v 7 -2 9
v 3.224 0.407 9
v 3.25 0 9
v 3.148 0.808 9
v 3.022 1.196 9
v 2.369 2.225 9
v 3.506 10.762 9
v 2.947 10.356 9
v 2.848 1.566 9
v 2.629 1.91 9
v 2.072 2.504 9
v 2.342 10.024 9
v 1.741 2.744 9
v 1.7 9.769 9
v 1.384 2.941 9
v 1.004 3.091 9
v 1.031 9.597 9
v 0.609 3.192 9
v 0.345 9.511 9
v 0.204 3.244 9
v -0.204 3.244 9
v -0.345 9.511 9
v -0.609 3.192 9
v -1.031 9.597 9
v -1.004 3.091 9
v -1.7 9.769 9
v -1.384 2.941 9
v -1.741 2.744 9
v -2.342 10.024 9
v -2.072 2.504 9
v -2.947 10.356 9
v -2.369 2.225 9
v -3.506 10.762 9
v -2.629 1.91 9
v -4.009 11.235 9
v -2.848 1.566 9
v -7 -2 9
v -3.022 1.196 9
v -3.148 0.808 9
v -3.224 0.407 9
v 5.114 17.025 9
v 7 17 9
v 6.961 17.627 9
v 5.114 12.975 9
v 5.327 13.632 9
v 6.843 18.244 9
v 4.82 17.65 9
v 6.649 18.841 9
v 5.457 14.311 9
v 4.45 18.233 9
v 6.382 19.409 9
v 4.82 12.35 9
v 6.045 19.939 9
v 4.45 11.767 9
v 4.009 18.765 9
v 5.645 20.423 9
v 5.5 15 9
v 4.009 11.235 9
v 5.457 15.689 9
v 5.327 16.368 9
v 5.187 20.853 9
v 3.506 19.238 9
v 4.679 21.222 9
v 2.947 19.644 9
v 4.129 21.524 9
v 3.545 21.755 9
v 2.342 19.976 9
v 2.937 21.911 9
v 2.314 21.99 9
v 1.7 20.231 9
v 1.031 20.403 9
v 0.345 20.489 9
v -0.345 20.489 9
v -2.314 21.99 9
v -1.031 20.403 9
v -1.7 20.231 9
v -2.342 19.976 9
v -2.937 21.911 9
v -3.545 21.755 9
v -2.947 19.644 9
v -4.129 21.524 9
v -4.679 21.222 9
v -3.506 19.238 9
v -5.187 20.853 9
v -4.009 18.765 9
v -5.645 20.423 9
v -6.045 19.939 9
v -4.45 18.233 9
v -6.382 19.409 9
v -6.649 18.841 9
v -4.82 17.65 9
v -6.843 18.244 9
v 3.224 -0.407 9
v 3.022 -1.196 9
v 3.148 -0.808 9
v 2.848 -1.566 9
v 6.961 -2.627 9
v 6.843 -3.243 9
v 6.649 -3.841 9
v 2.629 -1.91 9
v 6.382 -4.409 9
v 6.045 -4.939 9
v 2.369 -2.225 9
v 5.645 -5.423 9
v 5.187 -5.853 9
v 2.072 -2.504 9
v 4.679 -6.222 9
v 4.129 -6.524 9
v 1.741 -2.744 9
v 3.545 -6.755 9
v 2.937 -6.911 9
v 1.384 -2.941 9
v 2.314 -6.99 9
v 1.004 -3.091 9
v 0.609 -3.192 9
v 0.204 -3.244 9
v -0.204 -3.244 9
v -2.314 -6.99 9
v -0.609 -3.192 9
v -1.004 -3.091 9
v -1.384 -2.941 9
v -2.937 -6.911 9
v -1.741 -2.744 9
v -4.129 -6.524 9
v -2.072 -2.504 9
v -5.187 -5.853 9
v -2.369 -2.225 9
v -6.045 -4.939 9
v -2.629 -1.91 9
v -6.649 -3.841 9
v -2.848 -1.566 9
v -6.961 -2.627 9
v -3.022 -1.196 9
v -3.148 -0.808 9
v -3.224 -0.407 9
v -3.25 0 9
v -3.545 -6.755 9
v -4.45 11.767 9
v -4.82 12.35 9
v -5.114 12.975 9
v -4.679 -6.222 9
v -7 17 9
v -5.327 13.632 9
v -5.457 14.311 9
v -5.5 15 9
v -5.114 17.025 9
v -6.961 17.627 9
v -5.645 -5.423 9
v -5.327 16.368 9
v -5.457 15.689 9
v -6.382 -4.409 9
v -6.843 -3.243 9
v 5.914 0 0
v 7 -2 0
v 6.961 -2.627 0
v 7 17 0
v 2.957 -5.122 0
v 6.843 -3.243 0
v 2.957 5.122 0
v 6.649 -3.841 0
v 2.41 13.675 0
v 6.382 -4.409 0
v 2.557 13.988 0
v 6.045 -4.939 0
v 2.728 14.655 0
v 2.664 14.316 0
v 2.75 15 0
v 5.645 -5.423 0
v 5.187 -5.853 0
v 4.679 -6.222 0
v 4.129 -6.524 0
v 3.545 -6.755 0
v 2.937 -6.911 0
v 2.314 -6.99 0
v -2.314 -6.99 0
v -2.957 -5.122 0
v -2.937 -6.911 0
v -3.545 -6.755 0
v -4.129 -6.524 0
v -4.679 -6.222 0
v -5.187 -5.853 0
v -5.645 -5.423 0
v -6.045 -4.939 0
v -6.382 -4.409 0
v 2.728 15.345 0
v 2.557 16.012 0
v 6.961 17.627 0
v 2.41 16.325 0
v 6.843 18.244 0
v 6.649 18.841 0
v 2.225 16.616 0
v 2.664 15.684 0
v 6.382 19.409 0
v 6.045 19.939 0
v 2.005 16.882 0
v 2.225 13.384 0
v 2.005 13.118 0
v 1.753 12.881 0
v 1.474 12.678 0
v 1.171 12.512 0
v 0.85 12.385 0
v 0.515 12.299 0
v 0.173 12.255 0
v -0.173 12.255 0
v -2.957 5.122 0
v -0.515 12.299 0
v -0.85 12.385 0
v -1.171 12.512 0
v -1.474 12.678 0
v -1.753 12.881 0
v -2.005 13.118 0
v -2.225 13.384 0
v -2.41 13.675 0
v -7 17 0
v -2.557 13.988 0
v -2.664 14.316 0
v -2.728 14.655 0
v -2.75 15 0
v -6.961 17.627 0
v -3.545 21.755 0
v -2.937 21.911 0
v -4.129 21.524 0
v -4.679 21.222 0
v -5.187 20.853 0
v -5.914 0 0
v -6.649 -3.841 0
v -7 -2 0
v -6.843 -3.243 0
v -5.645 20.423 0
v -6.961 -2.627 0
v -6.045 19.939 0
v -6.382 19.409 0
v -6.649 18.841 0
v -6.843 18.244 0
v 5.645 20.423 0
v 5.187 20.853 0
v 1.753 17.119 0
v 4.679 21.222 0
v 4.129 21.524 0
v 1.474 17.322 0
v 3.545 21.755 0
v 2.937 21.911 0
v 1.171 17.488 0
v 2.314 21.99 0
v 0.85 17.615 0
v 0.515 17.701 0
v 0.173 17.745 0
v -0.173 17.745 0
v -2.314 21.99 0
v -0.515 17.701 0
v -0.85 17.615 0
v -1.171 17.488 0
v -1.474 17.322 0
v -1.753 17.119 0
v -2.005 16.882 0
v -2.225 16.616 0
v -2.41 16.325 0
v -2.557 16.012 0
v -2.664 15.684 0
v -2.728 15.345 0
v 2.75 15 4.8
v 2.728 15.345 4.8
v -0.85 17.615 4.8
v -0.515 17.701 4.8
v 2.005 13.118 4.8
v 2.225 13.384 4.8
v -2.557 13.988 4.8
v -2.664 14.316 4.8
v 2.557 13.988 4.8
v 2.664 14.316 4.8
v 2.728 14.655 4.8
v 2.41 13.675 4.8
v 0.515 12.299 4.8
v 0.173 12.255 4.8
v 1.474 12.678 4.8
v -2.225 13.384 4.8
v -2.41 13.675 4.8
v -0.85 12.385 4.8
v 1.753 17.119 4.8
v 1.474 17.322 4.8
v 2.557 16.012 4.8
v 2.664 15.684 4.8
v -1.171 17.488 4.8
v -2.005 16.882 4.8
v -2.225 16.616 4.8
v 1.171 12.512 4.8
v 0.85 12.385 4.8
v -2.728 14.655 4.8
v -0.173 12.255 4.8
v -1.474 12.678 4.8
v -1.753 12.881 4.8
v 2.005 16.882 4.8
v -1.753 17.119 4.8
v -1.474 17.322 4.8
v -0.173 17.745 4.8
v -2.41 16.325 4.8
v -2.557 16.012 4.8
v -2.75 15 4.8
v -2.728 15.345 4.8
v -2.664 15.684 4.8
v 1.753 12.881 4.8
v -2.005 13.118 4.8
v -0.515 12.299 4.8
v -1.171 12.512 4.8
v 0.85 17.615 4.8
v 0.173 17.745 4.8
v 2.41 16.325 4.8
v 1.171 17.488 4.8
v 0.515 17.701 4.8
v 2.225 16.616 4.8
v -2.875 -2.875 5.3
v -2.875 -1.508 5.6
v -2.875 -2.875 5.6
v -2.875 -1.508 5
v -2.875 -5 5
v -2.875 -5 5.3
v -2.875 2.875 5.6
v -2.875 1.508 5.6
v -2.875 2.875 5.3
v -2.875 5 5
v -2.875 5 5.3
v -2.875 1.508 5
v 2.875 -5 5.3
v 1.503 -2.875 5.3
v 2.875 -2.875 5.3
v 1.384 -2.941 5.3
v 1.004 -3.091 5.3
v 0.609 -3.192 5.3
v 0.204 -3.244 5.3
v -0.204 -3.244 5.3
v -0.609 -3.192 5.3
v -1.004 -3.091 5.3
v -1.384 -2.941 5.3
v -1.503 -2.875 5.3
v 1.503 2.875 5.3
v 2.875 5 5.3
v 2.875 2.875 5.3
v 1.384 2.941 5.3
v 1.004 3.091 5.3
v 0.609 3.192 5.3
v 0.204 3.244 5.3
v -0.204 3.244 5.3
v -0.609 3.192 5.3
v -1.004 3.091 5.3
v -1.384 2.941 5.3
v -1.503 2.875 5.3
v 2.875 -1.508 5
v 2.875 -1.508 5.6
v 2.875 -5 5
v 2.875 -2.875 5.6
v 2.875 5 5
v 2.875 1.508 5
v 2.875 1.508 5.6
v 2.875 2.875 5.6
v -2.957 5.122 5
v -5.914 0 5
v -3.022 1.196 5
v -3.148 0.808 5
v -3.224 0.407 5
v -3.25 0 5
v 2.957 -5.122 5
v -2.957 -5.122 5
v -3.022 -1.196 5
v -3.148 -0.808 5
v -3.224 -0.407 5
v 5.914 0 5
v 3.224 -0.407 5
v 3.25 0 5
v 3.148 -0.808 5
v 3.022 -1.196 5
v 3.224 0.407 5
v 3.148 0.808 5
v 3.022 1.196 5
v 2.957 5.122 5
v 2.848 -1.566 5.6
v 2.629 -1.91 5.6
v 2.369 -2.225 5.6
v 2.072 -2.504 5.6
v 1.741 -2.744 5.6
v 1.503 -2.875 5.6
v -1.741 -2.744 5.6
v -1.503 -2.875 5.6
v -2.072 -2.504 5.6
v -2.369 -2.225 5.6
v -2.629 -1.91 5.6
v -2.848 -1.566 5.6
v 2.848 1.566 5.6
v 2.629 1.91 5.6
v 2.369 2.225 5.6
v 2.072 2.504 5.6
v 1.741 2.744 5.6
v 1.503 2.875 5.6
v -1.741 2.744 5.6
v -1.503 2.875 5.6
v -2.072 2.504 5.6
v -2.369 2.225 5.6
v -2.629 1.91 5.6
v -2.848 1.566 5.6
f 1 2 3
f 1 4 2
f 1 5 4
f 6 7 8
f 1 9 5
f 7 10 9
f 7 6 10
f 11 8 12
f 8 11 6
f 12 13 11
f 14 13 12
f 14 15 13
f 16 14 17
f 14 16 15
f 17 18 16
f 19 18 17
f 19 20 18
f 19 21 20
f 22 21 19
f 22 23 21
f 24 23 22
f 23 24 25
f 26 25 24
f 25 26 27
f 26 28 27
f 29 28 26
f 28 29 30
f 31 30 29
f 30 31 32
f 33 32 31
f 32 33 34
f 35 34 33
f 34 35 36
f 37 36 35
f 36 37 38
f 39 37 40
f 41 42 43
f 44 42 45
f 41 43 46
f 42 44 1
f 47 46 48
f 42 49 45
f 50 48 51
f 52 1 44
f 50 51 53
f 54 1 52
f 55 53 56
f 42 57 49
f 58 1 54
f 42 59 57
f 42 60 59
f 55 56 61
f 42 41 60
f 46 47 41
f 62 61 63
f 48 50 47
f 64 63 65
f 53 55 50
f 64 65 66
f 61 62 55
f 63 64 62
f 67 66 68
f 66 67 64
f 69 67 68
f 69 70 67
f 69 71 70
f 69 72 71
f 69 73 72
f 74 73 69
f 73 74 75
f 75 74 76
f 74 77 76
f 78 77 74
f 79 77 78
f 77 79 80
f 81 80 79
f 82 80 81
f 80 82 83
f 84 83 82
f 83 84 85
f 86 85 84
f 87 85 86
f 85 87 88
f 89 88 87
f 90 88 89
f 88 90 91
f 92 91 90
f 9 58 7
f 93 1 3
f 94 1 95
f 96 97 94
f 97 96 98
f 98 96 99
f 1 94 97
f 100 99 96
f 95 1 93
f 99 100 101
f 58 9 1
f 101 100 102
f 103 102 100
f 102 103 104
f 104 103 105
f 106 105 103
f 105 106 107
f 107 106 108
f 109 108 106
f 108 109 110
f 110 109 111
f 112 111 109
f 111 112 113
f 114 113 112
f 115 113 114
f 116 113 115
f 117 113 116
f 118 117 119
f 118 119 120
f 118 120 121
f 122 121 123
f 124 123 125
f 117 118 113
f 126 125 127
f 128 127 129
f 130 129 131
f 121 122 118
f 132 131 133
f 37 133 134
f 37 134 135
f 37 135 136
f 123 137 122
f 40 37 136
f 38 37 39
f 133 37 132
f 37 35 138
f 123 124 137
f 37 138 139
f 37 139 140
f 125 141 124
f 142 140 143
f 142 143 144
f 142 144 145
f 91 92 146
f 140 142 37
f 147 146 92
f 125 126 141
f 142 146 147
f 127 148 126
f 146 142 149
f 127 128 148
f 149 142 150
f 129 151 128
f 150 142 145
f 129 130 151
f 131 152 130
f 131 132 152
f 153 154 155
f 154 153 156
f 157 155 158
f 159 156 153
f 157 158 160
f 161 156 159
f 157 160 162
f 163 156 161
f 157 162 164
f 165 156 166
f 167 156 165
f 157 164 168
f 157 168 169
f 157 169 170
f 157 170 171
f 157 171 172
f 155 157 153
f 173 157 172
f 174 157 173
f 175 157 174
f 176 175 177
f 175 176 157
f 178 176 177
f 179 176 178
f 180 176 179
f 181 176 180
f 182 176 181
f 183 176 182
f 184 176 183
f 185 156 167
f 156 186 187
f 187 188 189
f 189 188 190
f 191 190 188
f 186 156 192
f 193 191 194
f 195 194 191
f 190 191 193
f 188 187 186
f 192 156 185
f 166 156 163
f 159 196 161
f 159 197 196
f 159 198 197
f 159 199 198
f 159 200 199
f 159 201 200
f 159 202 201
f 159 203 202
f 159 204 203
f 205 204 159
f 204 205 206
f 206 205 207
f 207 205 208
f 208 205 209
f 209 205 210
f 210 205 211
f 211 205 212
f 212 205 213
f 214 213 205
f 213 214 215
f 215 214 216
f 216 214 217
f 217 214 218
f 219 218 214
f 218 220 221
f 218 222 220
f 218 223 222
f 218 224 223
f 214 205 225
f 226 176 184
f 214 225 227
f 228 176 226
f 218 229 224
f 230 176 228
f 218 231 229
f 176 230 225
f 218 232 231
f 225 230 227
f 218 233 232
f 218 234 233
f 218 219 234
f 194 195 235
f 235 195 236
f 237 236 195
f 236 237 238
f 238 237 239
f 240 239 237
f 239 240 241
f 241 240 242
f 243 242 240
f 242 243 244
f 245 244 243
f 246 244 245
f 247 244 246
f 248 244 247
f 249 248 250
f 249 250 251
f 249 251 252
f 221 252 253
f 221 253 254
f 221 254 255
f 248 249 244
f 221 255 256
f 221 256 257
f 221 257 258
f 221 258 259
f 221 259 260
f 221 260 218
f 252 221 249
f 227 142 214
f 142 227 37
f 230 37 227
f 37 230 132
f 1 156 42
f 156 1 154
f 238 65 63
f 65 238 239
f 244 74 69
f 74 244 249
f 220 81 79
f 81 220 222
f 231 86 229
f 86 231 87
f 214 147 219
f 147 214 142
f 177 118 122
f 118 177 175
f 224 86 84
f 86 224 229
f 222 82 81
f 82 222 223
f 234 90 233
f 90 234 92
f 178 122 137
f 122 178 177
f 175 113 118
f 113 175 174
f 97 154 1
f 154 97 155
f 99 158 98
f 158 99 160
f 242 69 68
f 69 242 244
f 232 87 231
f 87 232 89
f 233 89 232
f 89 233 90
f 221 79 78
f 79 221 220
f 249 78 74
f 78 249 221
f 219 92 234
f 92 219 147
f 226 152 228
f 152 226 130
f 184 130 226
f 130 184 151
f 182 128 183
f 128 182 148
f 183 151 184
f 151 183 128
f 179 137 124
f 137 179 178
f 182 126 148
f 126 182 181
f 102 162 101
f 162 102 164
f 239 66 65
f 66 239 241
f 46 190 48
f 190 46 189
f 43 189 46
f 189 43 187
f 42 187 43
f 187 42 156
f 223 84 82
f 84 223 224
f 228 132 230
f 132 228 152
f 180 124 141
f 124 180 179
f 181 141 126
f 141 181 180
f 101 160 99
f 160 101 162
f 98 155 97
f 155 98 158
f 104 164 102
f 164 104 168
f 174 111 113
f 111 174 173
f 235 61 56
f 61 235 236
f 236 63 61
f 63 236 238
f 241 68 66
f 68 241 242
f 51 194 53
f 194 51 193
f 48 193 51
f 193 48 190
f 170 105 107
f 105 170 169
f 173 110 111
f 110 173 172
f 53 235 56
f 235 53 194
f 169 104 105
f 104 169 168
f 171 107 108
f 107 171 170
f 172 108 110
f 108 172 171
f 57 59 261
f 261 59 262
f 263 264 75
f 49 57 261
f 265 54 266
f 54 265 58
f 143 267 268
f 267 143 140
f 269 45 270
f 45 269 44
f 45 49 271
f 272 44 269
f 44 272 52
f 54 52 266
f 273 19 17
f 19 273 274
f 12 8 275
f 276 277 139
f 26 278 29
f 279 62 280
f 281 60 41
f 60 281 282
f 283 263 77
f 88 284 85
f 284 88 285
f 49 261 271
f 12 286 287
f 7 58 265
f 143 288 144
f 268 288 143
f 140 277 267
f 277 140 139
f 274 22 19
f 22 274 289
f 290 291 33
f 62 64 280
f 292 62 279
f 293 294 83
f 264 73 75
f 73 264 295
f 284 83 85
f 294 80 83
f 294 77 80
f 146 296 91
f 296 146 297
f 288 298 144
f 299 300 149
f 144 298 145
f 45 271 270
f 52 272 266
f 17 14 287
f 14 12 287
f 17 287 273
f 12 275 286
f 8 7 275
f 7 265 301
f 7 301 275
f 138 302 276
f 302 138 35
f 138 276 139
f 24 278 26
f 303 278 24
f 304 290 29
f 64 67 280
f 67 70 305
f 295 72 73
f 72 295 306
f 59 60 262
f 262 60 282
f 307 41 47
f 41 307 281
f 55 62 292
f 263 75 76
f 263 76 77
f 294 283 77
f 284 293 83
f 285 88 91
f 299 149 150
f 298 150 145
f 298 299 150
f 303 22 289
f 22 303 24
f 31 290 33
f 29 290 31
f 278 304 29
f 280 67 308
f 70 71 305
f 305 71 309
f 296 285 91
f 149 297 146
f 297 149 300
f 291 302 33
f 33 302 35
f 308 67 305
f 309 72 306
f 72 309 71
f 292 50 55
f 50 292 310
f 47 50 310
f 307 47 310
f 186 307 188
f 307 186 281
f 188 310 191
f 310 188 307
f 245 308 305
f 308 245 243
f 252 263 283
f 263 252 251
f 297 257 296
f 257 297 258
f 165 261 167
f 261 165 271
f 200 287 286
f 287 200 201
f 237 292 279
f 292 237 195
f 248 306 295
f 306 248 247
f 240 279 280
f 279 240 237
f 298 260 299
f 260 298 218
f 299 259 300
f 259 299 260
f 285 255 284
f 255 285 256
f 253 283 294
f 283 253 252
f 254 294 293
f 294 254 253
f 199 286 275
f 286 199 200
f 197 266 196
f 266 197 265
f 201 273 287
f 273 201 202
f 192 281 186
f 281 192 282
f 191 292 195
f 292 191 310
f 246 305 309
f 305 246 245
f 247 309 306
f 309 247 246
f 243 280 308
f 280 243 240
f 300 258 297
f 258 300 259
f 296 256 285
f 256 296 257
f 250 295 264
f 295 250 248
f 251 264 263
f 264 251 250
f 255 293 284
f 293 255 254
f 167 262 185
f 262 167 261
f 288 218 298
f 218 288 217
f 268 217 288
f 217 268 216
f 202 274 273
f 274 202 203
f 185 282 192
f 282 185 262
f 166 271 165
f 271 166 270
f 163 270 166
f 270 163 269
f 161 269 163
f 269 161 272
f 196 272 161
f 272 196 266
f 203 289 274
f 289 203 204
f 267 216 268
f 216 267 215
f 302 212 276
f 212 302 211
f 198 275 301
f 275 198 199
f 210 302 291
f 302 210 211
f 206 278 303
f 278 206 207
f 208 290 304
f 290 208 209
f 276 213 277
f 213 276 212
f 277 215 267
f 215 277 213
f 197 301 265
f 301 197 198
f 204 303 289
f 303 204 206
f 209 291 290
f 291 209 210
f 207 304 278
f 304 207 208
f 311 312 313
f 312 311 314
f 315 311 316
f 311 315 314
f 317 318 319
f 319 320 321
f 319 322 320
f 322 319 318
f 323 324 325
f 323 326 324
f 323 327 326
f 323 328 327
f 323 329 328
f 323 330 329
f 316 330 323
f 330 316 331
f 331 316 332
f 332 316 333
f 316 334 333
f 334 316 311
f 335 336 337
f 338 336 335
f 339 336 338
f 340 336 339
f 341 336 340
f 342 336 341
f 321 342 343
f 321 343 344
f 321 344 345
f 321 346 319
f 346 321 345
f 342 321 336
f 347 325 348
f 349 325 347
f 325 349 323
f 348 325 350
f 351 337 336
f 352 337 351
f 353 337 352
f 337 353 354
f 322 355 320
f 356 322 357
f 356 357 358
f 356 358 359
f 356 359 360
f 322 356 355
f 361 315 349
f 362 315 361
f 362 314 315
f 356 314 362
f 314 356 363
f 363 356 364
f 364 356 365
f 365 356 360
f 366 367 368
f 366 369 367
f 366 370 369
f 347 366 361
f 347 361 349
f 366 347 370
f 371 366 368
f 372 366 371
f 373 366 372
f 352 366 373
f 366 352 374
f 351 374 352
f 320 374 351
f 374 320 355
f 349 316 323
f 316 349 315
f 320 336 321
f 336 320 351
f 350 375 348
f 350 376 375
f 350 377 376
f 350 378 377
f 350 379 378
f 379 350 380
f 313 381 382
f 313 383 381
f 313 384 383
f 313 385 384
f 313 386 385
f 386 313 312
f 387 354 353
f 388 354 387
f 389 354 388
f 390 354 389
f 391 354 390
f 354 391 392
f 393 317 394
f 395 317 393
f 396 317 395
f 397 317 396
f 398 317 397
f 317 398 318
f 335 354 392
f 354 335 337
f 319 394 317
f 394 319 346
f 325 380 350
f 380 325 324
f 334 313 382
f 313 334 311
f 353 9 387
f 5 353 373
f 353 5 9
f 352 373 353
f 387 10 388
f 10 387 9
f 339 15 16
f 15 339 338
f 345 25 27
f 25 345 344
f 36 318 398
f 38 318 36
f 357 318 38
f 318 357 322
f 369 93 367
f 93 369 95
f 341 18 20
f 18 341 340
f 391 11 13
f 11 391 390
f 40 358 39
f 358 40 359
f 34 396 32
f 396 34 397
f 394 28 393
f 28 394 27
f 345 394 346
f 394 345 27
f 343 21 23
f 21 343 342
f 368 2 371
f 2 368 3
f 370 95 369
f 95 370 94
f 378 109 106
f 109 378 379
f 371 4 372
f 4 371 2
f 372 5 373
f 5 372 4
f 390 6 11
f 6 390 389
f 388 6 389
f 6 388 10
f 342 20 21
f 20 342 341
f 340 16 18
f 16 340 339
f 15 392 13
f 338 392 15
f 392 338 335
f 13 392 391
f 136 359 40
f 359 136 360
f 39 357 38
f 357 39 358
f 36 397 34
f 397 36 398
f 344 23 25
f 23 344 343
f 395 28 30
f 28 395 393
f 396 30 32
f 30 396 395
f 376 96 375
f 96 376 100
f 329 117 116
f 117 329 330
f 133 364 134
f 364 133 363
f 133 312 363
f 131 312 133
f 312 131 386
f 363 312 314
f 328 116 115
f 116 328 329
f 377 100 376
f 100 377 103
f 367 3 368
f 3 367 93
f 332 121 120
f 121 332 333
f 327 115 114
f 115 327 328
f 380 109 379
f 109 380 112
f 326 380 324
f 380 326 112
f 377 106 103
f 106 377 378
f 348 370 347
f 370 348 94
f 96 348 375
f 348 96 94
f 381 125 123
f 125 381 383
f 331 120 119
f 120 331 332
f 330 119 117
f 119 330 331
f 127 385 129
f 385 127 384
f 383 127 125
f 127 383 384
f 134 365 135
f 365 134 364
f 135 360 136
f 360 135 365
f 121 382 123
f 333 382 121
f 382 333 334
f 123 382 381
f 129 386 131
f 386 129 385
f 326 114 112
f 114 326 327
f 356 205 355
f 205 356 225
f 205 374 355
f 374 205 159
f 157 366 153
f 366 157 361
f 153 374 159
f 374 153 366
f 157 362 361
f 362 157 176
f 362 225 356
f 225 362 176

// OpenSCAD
$fn = 50;


difference() {
	union() {
		cylinder(h = 9, r = 7.0000000000);
		translate(v = [0.0000000000, 7.5000000000, 0]) {
			hull() {
				translate(v = [-2.0000000000, 9.5000000000, 0]) {
					cylinder(h = 9, r = 5);
				}
				translate(v = [2.0000000000, 9.5000000000, 0]) {
					cylinder(h = 9, r = 5);
				}
				translate(v = [-2.0000000000, -9.5000000000, 0]) {
					cylinder(h = 9, r = 5);
				}
				translate(v = [2.0000000000, -9.5000000000, 0]) {
					cylinder(h = 9, r = 5);
				}
			}
		}
		translate(v = [0.0000000000, 7.5000000000, 0]) {
			hull() {
				translate(v = [-2.0000000000, 9.5000000000, 0]) {
					cylinder(h = 9, r = 5);
				}
				translate(v = [2.0000000000, 9.5000000000, 0]) {
					cylinder(h = 9, r = 5);
				}
				translate(v = [-2.0000000000, -9.5000000000, 0]) {
					cylinder(h = 9, r = 5);
				}
				translate(v = [2.0000000000, -9.5000000000, 0]) {
					cylinder(h = 9, r = 5);
				}
			}
		}
	}
	union() {
		translate(v = [0.0000000000, 15.0000000000, 9]) {
			rotate(a = [0, 0, 0]) {
				difference() {
					union() {
						#translate(v = [0, 0, -9.0000000000]) {
							cylinder(h = 9, r = 2.2500000000);
						}
						#translate(v = [0, 0, -4.2000000000]) {
							cylinder(h = 4.2000000000, r1 = 2.7500000000, r2 = 5.5000000000);
						}
						#translate(v = [0, 0, -9.0000000000]) {
							cylinder(h = 9, r = 2.7500000000);
						}
						#translate(v = [0, 0, -9.0000000000]) {
							cylinder(h = 9, r = 2.2500000000);
						}
					}
					union();
				}
			}
		}
		translate(v = [0.0000000000, 15.0000000000, 9]) {
			rotate(a = [0, 0, 0]) {
				difference() {
					union() {
						#translate(v = [0, 0, -9.0000000000]) {
							cylinder(h = 9, r = 2.2500000000);
						}
						#translate(v = [0, 0, -4.2000000000]) {
							cylinder(h = 4.2000000000, r1 = 2.7500000000, r2 = 5.5000000000);
						}
						#translate(v = [0, 0, -9.0000000000]) {
							cylinder(h = 9, r = 2.7500000000);
						}
						#translate(v = [0, 0, -9.0000000000]) {
							cylinder(h = 9, r = 2.2500000000);
						}
					}
					union();
				}
			}
		}
		translate(v = [0.0000000000, 0.0000000000, 0]) {
			rotate(a = [0, 0, 0]) {
				difference() {
					union() {
						#translate(v = [-2.8750000000, -5.0000000000, -0.3000000000]) {
							cube(size = [5.7500000000, 10, 0.3000000000]);
						}
						#translate(v = [-2.8750000000, -2.8750000000, -0.6000000000]) {
							cube(size = [5.7500000000, 5.7500000000, 0.3000000000]);
						}
						#translate(v = [-2.8750000000, -5.0000000000, 5]) {
							cube(size = [5.7500000000, 10, 0.3000000000]);
						}
						#translate(v = [-2.8750000000, -2.8750000000, 5.3000000000]) {
							cube(size = [5.7500000000, 5.7500000000, 0.3000000000]);
						}
						#translate(v = [0, 0, -100.0000000000]) {
							cylinder(h = 200, r = 3.2500000000);
						}
						#linear_extrude(height = 5) {
							polygon(points = [[5.9142500000, 0.0000000000], [2.9571250000, 5.1218907443], [-2.9571250000, 5.1218907443], [-5.9142500000, 0.0000000000], [-2.9571250000, -5.1218907443], [2.9571250000, -5.1218907443]]);
						}
						#translate(v = [-2.8750000000, -5.0000000000, -0.3000000000]) {
							cube(size = [5.7500000000, 10, 0.3000000000]);
						}
						#translate(v = [-2.8750000000, -2.8750000000, -0.6000000000]) {
							cube(size = [5.7500000000, 5.7500000000, 0.3000000000]);
						}
						#translate(v = [-2.8750000000, -5.0000000000, 5]) {
							cube(size = [5.7500000000, 10, 0.3000000000]);
						}
						#translate(v = [-2.8750000000, -2.8750000000, 5.3000000000]) {
							cube(size = [5.7500000000, 5.7500000000, 0.3000000000]);
						}
						#translate(v = [0, 0, -100.0000000000]) {
							cylinder(h = 200, r = 3.2500000000);
						}
						#translate(v = [-2.8750000000, -5.0000000000, -0.3000000000]) {
							cube(size = [5.7500000000, 10, 0.3000000000]);
						}
						#translate(v = [-2.8750000000, -2.8750000000, -0.6000000000]) {
							cube(size = [5.7500000000, 5.7500000000, 0.3000000000]);
						}
						#translate(v = [-2.8750000000, -5.0000000000, 5]) {
							cube(size = [5.7500000000, 10, 0.3000000000]);
						}
						#translate(v = [-2.8750000000, -2.8750000000, 5.3000000000]) {
							cube(size = [5.7500000000, 5.7500000000, 0.3000000000]);
						}
						#translate(v = [0, 0, -100.0000000000]) {
							cylinder(h = 200, r = 3.2500000000);
						}
					}
					union();
				}
			}
		}
		translate(v = [0, 0, -100]) {
			cylinder(h = 200, r = 3.2500000000);
		}
		translate(v = [0, 0, -100]) {
			cylinder(h = 200, r = 1.8000000000);
		}
	}
}
